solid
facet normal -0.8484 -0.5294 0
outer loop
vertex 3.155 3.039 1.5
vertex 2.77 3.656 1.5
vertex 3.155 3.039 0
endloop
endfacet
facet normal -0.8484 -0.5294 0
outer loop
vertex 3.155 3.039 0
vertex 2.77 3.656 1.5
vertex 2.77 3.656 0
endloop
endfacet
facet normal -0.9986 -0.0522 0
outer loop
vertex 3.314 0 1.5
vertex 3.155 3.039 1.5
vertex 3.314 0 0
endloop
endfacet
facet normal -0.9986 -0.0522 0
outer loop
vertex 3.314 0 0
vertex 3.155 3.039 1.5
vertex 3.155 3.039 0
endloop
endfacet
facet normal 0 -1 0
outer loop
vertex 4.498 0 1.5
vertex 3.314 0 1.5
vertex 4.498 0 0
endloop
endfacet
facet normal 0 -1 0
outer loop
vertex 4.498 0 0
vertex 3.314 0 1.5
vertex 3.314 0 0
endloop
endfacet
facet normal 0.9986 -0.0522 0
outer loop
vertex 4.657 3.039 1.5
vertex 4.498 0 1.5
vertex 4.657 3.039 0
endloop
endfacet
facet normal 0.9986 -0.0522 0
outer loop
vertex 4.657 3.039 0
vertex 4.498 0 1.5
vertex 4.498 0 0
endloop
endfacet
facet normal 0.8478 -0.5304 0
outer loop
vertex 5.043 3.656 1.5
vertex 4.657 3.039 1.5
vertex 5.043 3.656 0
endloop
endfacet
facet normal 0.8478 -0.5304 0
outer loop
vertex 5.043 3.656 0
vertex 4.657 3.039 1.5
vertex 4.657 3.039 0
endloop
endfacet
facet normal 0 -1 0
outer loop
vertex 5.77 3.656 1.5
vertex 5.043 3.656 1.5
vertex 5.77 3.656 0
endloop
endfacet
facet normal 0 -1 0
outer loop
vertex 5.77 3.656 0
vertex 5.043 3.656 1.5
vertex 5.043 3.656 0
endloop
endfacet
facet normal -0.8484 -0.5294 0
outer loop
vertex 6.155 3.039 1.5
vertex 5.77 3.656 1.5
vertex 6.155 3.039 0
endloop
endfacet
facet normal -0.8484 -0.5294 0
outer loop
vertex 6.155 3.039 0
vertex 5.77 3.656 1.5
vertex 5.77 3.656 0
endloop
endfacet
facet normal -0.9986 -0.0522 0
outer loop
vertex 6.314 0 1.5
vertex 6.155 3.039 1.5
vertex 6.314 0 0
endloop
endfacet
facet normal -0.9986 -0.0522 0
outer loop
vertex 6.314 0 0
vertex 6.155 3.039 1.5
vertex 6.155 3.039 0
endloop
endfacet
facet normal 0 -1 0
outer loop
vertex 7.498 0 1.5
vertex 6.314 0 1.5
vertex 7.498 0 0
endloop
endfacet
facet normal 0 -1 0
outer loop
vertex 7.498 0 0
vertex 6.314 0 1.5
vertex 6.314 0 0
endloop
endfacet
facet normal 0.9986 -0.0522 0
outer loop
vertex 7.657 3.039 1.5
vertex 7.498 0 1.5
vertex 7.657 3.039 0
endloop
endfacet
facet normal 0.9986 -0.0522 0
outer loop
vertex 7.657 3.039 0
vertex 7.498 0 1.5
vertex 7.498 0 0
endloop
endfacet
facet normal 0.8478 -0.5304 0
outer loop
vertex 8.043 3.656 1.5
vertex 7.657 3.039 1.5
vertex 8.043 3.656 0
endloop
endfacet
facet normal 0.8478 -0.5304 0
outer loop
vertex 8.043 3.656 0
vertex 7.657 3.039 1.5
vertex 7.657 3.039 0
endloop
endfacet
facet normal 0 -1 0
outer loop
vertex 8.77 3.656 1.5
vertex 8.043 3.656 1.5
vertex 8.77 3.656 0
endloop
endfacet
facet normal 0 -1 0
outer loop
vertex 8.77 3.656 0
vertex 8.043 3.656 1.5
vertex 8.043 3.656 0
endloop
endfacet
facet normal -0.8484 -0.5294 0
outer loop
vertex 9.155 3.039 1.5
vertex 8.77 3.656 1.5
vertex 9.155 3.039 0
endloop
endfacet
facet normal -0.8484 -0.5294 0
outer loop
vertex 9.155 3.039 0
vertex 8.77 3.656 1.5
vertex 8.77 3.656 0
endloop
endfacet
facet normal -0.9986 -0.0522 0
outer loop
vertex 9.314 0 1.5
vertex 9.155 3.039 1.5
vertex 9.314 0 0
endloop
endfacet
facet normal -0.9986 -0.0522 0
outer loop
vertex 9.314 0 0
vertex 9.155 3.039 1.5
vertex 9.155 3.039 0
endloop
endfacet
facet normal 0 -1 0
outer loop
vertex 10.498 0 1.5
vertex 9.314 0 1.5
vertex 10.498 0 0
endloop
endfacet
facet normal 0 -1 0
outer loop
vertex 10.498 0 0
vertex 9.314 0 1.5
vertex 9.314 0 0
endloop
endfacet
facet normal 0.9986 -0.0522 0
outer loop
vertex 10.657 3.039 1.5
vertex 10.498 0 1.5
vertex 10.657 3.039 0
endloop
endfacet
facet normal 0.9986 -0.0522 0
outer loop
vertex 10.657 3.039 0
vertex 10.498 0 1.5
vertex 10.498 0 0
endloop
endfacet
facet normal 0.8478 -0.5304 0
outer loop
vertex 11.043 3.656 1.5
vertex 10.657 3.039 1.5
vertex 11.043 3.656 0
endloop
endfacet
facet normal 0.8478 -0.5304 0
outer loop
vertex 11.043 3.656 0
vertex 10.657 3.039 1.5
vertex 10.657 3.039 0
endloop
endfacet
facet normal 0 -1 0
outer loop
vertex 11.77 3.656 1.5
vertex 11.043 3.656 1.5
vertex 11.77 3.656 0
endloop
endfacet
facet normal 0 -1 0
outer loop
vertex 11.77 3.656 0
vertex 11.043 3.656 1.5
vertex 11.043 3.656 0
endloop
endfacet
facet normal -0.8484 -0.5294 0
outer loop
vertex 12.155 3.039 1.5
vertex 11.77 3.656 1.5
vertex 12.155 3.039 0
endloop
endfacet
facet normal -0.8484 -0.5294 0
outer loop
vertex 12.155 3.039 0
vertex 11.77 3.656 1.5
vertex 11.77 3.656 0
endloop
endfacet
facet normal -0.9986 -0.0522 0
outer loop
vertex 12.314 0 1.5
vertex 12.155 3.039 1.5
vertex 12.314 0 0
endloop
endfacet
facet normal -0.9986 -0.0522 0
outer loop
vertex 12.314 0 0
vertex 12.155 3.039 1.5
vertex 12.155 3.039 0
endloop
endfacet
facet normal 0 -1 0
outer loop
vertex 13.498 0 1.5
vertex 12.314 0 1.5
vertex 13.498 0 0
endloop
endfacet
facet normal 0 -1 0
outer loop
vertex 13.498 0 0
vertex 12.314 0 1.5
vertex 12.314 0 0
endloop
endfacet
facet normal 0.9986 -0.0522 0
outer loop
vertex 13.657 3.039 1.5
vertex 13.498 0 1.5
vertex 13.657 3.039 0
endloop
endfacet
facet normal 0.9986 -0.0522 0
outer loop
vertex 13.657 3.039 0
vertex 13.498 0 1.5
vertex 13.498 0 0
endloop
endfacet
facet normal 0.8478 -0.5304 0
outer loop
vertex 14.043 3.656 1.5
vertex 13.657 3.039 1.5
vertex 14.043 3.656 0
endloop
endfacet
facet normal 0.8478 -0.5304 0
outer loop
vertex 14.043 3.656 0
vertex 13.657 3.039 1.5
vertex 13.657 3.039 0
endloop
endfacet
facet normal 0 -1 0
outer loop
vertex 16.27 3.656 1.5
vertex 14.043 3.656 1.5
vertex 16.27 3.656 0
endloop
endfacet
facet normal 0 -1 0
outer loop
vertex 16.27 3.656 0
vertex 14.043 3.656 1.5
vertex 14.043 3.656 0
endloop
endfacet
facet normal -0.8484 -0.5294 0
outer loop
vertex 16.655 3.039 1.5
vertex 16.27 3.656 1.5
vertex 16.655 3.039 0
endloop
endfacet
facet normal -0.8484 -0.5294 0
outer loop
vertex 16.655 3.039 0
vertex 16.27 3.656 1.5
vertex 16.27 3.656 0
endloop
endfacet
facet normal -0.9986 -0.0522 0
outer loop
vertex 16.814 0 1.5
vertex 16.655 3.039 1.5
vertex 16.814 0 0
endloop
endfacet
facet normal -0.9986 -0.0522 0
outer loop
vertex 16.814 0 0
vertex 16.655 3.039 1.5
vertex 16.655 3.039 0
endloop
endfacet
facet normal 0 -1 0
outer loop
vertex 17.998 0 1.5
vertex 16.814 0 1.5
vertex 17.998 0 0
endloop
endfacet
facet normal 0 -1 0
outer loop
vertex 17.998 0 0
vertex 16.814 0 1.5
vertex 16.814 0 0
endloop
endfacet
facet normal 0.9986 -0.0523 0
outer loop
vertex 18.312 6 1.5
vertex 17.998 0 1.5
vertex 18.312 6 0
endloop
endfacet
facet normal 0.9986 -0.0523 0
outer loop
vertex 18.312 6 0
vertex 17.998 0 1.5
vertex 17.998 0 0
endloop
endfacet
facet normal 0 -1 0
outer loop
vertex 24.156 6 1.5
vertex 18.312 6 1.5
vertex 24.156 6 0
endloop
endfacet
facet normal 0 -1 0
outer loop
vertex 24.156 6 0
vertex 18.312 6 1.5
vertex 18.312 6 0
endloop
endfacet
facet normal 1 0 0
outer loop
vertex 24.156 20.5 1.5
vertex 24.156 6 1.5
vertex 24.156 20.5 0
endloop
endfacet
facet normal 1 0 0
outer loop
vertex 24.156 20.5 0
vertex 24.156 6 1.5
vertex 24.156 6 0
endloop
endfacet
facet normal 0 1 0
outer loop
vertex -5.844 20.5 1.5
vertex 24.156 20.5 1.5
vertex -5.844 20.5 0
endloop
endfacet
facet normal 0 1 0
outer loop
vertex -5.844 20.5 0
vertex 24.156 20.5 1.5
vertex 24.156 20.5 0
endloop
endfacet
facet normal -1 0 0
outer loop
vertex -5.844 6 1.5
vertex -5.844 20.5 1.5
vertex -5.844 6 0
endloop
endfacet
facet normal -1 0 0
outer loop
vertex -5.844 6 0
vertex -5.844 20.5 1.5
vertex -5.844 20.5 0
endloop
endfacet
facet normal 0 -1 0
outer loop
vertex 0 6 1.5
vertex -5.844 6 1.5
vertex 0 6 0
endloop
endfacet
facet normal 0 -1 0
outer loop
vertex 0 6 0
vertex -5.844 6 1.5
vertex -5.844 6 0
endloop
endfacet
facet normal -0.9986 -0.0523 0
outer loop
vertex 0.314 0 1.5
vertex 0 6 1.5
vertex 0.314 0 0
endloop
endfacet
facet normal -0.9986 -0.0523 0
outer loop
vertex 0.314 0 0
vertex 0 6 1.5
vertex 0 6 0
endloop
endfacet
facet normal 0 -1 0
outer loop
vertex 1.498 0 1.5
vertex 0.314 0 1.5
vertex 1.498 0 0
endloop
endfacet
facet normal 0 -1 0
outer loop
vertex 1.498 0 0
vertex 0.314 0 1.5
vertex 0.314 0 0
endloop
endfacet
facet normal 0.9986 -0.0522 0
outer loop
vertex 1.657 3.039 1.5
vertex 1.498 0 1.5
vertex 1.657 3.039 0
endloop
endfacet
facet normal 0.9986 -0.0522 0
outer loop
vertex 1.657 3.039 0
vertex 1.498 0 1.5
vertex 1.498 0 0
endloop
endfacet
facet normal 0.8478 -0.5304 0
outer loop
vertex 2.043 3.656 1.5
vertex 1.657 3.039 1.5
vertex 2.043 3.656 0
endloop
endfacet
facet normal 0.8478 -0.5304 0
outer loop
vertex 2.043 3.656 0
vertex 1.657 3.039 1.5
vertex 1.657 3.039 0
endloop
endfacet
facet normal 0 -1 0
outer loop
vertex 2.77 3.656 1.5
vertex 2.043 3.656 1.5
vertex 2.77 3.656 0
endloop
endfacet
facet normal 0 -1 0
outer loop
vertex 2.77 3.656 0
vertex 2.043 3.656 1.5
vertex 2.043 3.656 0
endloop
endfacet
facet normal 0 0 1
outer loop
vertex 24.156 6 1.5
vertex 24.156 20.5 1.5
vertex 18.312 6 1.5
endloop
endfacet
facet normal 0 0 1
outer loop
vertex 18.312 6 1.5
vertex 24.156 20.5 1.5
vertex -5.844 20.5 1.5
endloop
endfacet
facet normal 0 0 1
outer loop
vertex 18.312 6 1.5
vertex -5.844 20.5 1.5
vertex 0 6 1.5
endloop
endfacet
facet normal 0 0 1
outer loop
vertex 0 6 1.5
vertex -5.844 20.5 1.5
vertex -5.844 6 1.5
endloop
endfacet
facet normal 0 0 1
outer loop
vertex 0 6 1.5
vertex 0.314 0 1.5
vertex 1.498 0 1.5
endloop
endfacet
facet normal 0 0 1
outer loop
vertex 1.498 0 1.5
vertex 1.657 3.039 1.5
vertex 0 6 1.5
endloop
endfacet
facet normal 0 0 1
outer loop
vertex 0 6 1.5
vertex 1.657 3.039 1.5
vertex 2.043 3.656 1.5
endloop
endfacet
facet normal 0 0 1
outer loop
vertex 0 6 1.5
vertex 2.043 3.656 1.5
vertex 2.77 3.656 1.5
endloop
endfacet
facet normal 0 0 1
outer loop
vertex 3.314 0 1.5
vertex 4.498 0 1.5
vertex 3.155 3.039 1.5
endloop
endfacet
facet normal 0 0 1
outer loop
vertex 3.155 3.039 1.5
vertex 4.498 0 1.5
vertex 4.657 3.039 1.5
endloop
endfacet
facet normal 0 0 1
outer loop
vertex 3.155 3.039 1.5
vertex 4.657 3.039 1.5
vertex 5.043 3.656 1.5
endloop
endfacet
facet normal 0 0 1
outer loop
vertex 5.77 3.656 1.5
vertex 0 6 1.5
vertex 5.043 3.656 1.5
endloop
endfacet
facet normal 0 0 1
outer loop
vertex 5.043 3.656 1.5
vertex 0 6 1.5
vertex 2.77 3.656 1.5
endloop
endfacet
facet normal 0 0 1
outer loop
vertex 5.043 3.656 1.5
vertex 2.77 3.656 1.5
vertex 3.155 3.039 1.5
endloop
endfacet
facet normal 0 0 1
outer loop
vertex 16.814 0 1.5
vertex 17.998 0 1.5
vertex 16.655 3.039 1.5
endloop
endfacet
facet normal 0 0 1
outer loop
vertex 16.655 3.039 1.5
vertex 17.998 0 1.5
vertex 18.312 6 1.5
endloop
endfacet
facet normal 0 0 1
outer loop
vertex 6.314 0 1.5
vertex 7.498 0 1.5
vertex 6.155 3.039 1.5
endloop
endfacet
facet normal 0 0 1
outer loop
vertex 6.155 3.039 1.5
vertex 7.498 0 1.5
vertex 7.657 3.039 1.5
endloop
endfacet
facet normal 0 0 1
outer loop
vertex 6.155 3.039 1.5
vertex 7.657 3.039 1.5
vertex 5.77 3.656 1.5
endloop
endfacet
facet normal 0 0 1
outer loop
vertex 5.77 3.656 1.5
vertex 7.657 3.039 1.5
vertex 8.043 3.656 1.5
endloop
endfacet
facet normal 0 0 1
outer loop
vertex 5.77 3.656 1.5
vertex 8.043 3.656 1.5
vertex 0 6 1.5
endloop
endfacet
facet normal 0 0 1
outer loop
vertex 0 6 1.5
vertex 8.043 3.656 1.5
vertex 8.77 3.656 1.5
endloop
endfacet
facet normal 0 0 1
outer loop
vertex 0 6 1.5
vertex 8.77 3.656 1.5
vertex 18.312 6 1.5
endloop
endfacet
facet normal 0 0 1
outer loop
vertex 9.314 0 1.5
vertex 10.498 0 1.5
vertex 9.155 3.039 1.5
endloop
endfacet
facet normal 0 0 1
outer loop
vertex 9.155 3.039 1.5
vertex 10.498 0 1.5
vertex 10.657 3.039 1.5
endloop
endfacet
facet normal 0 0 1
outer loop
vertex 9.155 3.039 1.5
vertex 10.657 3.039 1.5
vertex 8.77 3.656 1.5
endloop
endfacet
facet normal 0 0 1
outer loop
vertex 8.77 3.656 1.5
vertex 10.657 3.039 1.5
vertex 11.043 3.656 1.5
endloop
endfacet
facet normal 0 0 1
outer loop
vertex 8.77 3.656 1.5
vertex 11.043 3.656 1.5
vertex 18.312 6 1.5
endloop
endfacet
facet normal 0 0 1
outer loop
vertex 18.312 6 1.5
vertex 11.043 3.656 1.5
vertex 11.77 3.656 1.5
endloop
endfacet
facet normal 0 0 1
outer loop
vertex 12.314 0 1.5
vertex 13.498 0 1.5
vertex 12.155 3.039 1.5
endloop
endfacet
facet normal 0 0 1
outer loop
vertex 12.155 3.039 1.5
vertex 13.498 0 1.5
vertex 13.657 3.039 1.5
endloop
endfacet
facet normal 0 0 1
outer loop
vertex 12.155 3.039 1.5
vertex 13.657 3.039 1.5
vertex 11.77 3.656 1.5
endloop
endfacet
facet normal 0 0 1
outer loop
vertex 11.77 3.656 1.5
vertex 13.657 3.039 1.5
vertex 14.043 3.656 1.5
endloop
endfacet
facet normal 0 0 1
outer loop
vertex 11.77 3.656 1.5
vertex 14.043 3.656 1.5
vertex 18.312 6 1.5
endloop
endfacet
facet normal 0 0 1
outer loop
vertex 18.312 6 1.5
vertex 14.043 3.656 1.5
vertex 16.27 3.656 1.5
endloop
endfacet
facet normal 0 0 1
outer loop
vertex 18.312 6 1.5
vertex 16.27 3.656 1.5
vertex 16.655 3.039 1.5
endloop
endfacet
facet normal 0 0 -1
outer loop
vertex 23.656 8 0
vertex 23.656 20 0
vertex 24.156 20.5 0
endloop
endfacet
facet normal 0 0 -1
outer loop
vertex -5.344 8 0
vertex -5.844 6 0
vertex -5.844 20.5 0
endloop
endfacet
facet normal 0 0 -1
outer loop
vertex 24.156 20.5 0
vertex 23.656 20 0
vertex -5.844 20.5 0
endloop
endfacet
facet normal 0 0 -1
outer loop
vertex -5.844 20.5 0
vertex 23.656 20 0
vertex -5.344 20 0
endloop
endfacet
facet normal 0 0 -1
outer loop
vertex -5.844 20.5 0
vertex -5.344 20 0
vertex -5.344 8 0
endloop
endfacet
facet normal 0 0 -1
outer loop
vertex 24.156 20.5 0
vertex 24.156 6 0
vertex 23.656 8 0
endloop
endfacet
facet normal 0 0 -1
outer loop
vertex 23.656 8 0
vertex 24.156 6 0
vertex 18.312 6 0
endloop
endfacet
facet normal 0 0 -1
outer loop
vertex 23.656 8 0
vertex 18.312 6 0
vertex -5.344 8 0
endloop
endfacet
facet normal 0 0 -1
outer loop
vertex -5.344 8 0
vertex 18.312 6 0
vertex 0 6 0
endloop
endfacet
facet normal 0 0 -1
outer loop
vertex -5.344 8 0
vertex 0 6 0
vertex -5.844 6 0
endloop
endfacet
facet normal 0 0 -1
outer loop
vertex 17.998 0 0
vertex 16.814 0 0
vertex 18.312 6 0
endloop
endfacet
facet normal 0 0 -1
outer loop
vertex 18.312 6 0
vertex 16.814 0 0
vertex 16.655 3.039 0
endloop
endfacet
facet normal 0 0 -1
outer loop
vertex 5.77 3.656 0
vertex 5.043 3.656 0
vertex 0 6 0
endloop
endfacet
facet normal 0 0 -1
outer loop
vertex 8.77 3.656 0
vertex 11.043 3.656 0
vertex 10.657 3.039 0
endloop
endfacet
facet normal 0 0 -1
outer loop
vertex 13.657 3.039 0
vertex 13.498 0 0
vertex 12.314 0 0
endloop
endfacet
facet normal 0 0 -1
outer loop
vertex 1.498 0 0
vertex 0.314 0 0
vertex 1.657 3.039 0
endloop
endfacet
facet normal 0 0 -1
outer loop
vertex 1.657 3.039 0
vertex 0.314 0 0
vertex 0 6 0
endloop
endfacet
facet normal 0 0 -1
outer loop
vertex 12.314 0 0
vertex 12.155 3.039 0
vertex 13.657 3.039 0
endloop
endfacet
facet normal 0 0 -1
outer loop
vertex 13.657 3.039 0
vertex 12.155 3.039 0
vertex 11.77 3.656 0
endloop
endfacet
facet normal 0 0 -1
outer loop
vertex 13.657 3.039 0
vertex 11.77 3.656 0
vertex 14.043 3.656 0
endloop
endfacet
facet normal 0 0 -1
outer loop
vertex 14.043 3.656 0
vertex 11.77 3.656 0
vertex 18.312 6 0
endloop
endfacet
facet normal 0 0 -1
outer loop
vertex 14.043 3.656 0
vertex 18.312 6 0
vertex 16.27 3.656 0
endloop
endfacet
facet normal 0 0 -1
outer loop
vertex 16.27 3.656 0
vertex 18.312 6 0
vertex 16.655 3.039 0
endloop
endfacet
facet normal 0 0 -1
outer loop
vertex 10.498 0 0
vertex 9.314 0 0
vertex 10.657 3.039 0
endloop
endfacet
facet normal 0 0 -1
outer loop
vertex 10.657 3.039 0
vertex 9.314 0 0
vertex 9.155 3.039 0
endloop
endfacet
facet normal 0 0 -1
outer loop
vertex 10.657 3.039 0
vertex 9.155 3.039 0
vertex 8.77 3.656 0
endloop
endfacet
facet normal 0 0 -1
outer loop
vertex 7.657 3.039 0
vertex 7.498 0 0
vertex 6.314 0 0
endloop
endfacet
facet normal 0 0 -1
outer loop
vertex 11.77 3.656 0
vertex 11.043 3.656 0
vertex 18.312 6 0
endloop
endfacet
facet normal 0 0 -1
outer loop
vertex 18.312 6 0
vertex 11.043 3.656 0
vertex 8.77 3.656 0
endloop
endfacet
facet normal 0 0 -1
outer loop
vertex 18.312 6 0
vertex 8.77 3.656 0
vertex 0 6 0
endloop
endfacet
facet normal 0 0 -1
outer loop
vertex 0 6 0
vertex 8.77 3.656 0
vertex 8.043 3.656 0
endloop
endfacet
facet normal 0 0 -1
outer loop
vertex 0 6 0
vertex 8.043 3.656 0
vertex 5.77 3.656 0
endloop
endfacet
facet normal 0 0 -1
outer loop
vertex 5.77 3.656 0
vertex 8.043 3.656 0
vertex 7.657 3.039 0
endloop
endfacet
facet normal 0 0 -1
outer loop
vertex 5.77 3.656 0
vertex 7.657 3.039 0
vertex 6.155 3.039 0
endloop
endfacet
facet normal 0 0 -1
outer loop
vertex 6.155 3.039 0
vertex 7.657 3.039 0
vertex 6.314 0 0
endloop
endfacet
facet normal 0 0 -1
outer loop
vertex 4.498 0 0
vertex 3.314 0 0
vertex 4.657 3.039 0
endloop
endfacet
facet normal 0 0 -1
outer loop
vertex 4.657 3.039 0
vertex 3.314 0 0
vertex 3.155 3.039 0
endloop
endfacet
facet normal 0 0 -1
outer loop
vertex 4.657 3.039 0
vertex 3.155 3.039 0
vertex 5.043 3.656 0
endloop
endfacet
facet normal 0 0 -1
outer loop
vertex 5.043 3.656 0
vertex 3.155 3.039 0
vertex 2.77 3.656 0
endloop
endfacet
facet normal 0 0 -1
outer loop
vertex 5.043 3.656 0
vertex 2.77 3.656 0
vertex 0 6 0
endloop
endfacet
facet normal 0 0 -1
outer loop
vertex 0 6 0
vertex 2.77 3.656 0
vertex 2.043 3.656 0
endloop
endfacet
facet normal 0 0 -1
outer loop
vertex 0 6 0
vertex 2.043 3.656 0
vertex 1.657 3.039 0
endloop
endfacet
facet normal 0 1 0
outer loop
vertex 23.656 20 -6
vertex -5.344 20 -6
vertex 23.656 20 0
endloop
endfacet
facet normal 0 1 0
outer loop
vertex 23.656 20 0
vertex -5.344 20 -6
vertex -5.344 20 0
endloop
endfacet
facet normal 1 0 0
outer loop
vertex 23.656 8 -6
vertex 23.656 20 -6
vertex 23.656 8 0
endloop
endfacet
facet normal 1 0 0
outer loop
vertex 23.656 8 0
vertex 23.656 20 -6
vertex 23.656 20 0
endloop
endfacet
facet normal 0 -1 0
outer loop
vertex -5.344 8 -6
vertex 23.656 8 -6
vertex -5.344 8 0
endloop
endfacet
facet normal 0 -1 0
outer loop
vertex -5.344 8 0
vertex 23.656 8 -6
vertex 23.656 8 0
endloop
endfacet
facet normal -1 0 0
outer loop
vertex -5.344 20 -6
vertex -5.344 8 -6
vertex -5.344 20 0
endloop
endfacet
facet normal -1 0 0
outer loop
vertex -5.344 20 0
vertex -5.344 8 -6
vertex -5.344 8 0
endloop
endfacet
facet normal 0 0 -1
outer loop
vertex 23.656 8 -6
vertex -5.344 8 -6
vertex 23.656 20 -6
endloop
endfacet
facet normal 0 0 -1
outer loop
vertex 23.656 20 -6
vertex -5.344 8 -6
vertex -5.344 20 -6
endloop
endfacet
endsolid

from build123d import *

# Parameters (mm, degrees)
BOSS_EXTRUDE1_DEPTH = 1.5
SKETCH12_W          = 29
SKETCH12_H          = 12
BOSS_EXTRUDE2_DEPTH = 6


with BuildPart() as part:
    # Sketch1 → Boss-Extrude1 (new body)
    with BuildSketch(Plane.XY):
        Polygon((0, 6), (0.314446676, 0), (1.497941481, 0), (1.657221927, 3.039251967), (2.042586863, 3.65596478), (2.769801294, 3.65596478), (3.155166229, 3.039251967), (3.314446676, 0), (4.497941481, 0), (4.657221927, 3.039251967), (5.042586863, 3.65596478), (5.769801294, 3.65596478), (6.155166229, 3.039251967), (6.314446676, 0), (7.497941481, 0), (7.657221927, 3.039251967), (8.042586863, 3.65596478), (8.769801294, 3.65596478), (9.155166229, 3.039251967), (9.314446676, 0), (10.497941481, 0), (10.657221927, 3.039251967), (11.042586863, 3.65596478), (11.769801294, 3.65596478), (12.155166229, 3.039251967), (12.314446676, 0), (13.497941481, 0), (13.657221927, 3.039251967), (14.042586863, 3.65596478), (16.269801294, 3.65596478), (16.655166229, 3.039251967), (16.814446676, 0), (17.997941481, 0), (18.312388157, 6), (24.156194078, 6), (24.156194078, 20.5), (-5.843805922, 20.5), (-5.843805922, 6), align=None)
    extrude(amount=BOSS_EXTRUDE1_DEPTH)

    # Sketch12 → Boss-Extrude2 (add)
    with BuildSketch(Plane.XY):
        with Locations((9.156194078, 14)):
            Rectangle(SKETCH12_W, SKETCH12_H)
    extrude(amount=-BOSS_EXTRUDE2_DEPTH)


solid = part.part
